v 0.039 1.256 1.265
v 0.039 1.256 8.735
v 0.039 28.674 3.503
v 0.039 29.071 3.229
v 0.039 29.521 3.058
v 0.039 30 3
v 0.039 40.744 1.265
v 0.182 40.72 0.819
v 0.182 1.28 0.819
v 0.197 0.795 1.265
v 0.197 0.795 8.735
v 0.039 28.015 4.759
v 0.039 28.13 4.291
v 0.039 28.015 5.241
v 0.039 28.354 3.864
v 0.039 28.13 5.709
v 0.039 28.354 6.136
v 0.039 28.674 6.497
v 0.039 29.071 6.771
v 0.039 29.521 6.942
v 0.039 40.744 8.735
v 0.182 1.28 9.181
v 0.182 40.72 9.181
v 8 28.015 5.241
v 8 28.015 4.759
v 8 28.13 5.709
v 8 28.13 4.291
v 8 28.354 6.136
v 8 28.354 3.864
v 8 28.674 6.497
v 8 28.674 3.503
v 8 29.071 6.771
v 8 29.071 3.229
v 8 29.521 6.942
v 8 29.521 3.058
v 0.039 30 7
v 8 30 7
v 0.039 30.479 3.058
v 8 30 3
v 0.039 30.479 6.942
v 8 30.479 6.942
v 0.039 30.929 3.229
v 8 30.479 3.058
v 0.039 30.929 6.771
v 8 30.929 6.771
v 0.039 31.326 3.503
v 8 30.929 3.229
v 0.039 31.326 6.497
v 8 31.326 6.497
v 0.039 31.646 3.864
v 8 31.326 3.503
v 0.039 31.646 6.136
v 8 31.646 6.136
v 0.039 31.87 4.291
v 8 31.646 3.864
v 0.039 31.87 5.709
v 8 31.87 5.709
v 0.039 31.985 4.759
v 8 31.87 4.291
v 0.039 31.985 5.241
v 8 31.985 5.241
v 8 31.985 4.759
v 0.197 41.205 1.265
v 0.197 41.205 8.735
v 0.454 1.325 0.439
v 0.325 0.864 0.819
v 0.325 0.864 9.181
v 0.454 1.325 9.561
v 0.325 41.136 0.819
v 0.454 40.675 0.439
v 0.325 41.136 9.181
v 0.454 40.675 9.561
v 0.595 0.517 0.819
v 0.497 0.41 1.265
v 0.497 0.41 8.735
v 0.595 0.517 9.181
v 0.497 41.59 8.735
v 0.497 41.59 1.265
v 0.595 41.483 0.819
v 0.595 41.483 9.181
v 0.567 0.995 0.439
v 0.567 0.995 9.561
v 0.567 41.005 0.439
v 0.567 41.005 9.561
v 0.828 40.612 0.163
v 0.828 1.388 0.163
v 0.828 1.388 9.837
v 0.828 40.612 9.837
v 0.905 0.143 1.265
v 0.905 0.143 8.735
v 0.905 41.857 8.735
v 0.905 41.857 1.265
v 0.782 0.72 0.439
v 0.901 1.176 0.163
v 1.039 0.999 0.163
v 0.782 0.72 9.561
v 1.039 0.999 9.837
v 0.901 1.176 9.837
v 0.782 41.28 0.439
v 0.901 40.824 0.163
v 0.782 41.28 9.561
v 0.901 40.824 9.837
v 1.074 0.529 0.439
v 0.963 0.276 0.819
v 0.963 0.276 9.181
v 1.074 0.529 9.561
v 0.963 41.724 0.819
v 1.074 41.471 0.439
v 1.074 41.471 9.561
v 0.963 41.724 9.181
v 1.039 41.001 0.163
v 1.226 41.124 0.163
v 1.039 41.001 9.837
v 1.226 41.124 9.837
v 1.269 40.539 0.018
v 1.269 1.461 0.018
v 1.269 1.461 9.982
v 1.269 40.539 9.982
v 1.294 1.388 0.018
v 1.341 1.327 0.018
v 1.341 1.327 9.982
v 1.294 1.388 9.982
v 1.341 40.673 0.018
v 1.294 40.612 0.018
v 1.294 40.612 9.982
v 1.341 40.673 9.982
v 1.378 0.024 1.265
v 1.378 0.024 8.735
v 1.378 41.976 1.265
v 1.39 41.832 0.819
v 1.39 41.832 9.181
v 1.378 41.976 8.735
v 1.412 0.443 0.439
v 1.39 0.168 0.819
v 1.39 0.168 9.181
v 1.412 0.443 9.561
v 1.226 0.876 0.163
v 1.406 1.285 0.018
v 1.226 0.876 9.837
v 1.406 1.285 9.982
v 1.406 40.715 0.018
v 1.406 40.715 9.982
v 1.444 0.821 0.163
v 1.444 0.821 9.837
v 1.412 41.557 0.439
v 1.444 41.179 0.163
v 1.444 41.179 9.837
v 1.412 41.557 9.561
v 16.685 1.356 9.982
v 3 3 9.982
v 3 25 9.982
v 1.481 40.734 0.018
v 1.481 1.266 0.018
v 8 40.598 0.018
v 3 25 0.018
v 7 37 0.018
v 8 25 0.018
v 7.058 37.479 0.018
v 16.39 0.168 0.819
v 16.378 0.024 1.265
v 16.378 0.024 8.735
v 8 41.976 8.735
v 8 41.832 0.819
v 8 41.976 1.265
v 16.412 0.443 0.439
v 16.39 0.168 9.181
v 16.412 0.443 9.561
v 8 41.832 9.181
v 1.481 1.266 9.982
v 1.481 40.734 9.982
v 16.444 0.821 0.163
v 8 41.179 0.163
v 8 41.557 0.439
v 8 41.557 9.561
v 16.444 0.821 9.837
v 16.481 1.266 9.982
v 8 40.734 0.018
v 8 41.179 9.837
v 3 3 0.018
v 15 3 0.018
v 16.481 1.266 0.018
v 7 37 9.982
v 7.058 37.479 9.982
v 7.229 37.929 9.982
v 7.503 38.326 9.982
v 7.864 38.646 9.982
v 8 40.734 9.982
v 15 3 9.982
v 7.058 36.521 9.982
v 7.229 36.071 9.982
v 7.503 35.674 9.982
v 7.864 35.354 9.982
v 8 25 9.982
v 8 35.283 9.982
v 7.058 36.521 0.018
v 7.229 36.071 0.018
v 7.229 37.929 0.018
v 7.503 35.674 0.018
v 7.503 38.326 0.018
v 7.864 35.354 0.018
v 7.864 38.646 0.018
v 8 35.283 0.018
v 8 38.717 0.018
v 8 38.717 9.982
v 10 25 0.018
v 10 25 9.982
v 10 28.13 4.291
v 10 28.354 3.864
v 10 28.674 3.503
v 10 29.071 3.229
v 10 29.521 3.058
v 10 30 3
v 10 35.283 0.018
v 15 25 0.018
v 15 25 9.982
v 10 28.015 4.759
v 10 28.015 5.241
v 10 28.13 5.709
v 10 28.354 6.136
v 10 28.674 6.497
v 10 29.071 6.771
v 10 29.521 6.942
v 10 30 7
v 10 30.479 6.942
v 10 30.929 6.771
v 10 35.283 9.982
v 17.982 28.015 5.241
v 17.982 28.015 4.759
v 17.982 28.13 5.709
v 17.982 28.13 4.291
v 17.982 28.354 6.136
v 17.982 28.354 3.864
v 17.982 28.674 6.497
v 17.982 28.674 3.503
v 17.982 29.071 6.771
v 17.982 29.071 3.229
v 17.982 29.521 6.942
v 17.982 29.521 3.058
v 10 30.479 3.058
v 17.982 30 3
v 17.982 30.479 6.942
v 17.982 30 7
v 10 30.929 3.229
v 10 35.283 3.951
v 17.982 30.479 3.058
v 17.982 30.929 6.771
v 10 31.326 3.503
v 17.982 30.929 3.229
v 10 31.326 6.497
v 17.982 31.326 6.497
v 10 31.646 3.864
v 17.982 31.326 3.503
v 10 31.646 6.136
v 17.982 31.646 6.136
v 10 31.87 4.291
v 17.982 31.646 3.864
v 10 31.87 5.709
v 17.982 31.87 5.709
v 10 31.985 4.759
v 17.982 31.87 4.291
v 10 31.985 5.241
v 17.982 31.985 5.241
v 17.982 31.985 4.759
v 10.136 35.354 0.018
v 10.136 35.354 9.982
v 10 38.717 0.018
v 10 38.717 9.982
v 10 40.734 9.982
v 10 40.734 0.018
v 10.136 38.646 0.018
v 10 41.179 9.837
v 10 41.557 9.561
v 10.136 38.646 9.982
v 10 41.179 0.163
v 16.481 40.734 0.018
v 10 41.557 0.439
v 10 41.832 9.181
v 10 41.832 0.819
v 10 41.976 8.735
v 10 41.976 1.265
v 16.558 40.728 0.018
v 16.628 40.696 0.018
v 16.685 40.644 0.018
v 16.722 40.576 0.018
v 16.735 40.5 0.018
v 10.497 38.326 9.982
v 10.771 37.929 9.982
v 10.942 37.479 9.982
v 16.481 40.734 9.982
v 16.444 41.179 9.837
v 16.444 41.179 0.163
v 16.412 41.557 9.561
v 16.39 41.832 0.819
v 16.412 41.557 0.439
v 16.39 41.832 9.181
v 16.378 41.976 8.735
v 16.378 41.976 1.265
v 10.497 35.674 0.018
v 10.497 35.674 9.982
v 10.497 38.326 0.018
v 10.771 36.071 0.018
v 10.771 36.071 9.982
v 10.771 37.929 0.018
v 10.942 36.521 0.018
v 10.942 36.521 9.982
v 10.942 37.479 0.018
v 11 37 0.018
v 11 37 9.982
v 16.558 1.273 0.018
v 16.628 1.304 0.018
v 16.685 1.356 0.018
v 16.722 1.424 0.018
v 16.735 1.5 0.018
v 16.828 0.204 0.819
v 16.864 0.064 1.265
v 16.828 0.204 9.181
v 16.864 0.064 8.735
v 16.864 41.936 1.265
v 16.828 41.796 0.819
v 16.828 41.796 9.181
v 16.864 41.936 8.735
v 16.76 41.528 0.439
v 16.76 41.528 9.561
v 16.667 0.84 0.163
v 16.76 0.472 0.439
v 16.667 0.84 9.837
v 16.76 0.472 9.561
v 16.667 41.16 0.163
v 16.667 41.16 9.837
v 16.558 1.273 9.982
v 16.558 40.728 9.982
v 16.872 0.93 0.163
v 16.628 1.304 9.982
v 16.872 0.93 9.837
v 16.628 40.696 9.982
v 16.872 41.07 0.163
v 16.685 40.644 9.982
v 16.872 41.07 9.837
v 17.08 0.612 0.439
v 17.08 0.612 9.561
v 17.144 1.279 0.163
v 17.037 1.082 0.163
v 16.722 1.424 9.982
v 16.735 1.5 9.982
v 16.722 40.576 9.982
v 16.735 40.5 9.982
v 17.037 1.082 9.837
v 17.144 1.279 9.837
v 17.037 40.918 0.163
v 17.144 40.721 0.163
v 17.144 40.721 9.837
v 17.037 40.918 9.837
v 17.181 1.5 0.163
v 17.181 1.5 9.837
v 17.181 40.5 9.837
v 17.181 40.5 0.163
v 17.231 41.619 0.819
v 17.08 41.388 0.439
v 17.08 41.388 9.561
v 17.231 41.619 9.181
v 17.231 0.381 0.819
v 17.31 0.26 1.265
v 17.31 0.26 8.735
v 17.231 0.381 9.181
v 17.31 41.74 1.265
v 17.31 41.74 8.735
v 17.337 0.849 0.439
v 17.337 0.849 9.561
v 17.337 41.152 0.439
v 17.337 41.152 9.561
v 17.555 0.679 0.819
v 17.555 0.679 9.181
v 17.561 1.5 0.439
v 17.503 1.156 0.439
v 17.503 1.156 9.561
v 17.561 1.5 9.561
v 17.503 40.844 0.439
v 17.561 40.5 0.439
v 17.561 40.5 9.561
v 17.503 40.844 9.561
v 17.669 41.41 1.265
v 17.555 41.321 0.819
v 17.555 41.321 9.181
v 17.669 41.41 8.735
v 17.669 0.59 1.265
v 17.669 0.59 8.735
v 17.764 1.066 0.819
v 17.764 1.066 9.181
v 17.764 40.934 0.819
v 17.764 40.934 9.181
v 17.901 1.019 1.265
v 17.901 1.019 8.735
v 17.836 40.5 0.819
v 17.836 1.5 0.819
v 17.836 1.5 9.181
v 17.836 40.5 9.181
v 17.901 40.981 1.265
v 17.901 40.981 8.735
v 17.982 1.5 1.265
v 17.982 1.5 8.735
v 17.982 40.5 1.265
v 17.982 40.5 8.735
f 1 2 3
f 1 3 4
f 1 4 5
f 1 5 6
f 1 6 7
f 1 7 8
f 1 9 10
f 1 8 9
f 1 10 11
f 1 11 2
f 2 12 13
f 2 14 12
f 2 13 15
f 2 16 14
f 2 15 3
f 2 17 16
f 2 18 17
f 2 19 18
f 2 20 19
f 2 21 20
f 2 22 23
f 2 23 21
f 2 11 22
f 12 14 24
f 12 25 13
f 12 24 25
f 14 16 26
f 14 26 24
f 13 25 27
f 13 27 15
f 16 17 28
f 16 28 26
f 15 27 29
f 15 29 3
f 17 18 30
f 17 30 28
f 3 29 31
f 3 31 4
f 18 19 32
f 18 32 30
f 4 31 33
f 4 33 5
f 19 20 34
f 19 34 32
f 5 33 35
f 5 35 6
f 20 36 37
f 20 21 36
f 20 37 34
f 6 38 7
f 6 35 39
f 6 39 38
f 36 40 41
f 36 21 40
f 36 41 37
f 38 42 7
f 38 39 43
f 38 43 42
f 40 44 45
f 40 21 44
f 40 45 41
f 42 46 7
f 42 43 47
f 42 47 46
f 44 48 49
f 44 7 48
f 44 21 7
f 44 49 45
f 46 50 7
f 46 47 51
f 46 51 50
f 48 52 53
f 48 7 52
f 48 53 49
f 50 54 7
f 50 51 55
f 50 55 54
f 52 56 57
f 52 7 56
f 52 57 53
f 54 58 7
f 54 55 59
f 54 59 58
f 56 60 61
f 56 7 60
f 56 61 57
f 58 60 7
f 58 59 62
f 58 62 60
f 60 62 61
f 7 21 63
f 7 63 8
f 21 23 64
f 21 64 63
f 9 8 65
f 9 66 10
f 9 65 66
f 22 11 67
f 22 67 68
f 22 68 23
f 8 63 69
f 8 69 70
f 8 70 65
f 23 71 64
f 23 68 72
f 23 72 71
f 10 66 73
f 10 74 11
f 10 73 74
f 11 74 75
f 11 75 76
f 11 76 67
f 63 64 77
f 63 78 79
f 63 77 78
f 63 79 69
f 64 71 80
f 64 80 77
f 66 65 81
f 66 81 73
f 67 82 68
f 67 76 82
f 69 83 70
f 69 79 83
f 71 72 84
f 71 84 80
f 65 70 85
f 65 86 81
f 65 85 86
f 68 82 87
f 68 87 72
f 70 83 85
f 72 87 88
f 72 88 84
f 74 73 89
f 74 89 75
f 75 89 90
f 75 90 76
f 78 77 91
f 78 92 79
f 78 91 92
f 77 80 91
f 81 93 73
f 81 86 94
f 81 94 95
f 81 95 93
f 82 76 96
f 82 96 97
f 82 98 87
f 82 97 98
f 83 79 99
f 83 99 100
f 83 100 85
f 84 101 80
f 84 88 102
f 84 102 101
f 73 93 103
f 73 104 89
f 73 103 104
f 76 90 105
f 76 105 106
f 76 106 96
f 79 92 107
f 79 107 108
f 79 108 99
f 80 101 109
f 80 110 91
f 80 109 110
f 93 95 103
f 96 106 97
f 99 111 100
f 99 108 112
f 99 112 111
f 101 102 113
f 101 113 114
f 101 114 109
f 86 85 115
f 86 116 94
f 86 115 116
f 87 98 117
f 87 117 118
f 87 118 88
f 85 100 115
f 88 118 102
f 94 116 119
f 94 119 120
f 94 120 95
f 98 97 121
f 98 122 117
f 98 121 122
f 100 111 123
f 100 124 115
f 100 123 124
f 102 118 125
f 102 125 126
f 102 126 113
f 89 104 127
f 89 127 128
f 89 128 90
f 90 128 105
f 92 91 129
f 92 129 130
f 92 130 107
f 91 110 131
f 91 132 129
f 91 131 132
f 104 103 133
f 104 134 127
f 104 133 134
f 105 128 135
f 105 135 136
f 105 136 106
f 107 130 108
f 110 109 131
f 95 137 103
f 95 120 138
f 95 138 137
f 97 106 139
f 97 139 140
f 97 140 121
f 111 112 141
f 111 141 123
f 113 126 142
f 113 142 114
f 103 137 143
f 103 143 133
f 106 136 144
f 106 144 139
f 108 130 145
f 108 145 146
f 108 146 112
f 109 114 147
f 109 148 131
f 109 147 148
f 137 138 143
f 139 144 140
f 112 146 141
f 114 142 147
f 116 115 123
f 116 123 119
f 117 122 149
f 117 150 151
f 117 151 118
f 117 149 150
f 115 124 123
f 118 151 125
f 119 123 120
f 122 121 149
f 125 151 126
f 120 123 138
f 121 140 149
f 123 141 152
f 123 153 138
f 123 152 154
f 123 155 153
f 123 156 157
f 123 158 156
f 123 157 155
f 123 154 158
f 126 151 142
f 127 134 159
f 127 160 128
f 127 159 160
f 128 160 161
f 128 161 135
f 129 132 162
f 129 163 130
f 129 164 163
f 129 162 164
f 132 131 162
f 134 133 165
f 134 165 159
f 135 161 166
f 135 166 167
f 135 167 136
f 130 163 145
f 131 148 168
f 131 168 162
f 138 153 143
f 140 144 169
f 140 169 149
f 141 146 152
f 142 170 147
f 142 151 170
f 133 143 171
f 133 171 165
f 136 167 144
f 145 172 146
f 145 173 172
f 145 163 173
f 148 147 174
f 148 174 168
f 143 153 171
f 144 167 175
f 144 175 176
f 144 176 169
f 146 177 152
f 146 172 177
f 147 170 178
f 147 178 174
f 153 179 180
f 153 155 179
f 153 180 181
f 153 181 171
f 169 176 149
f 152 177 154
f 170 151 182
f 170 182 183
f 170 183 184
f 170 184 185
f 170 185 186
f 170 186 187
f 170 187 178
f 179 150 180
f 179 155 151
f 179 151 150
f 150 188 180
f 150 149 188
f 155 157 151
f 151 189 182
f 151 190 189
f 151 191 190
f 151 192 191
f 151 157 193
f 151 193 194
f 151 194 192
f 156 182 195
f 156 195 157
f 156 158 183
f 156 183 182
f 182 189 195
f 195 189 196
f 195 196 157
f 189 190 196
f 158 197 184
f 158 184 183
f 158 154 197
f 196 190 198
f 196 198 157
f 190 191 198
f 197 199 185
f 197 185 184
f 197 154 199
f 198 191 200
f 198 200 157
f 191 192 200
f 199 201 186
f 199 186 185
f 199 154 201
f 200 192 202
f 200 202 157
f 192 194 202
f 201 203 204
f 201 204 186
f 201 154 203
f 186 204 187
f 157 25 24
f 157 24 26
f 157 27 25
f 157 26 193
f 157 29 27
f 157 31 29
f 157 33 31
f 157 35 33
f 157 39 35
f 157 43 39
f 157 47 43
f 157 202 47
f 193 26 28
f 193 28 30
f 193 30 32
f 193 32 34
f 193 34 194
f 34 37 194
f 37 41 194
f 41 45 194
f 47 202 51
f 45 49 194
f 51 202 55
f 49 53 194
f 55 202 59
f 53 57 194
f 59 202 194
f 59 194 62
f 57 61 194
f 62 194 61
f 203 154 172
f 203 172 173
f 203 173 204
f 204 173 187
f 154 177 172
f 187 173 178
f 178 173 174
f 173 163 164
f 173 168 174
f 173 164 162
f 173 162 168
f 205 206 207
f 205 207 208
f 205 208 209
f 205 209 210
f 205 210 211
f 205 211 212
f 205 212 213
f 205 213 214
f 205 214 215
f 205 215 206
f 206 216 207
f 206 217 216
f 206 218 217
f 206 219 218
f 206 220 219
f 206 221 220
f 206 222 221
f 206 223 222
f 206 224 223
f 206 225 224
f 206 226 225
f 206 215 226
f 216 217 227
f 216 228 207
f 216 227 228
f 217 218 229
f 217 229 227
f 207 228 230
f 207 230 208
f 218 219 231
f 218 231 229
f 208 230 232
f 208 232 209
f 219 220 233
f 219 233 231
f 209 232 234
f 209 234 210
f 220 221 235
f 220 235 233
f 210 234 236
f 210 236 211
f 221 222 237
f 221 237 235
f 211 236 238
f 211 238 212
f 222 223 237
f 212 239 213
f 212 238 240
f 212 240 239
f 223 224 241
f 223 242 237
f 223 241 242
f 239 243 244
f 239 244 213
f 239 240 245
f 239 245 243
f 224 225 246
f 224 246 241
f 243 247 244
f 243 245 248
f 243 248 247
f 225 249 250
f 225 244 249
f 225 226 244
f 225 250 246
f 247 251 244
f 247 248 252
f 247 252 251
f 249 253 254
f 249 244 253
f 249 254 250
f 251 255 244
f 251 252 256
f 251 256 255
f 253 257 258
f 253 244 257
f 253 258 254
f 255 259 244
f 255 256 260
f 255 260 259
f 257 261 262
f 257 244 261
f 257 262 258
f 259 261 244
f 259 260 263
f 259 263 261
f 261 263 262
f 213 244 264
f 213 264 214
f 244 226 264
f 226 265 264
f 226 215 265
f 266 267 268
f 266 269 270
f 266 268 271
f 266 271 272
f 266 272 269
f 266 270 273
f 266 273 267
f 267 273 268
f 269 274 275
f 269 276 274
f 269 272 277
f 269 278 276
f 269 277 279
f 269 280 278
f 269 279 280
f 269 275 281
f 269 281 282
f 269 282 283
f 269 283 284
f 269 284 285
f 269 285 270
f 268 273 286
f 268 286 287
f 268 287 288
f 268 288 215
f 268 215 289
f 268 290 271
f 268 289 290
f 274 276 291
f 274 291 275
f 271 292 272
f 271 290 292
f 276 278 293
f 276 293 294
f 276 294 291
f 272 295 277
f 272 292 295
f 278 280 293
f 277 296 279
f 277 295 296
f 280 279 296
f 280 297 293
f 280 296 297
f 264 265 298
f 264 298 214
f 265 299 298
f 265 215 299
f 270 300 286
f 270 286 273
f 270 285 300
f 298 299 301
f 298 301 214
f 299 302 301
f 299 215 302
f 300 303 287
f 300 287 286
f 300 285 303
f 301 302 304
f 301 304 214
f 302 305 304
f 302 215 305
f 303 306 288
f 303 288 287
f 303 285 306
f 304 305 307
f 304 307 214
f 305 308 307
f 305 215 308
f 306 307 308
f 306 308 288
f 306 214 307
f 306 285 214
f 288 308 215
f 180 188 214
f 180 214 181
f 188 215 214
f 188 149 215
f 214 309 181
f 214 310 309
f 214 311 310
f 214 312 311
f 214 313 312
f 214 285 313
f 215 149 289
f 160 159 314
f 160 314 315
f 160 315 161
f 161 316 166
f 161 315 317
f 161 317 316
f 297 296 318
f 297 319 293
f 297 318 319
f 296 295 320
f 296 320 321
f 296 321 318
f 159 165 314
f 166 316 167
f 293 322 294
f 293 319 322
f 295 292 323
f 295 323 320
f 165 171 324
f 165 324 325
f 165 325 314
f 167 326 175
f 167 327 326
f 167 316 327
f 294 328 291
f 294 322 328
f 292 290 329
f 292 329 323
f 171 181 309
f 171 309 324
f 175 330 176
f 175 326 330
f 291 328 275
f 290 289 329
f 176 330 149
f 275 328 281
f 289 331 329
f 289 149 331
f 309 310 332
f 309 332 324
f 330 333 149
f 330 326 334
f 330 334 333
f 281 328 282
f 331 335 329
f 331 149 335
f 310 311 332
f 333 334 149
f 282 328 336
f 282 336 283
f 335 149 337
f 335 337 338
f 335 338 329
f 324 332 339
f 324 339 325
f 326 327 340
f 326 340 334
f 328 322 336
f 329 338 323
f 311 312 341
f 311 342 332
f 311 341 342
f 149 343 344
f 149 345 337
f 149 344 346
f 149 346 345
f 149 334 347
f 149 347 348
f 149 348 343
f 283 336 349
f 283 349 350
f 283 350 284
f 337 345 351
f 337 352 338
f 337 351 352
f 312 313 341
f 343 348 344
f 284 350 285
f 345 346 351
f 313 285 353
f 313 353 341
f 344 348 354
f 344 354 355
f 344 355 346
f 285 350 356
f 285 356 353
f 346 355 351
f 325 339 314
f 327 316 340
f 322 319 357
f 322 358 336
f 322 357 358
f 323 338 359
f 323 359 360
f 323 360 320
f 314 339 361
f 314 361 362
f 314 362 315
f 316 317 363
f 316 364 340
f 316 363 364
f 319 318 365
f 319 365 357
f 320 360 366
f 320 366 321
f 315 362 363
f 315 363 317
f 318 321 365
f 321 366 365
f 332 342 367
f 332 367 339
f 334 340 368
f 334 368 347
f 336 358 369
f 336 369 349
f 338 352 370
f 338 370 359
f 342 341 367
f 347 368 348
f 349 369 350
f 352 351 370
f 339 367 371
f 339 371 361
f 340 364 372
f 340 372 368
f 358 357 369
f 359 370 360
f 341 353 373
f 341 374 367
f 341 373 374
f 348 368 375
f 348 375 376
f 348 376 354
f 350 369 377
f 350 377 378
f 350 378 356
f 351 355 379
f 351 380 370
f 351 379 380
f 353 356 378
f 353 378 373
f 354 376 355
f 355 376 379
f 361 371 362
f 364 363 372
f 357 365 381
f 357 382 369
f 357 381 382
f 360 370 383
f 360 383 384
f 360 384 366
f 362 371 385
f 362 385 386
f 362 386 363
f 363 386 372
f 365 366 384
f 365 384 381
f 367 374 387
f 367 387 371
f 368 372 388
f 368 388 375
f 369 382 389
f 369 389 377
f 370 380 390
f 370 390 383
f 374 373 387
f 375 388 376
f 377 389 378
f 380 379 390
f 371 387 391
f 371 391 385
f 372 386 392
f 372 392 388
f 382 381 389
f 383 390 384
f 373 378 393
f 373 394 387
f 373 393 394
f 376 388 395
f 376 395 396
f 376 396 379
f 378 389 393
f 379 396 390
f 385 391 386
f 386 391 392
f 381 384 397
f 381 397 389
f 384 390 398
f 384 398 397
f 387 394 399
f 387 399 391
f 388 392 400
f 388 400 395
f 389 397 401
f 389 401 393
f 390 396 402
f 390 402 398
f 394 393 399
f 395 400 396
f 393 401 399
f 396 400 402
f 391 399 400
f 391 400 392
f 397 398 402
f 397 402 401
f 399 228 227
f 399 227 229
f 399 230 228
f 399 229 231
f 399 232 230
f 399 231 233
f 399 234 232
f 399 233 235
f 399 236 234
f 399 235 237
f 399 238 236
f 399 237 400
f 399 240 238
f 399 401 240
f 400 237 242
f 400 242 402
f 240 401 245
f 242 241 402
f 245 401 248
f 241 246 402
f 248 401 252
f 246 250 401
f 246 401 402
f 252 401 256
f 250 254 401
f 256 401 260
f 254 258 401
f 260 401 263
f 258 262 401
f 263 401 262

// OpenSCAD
wall=3;
screw=4;
width=12;
height=22;
depth=10;
cable=4;
radius=1.5;
bissl=1/100;
$fa=1/1;
$fs=1/2;
module single() {
  difference() {
    //cube([width+2*wall,height+4*wall+cable+screw,depth]);
    cuber([width+2*wall,height+4*wall+cable+screw,depth],r=radius);
    translate([wall,wall,-bissl])cube([width,height,depth+2*bissl]);
    //translate([wall+width/2,2*wall+height+cable/2,-bissl])cylinder(h=depth+2*bissl,d=cable);
    translate([wall+width/2,2*wall+height+cable+wall+screw/2,-bissl])cylinder(h=depth+2*bissl,d=cable);
    //translate([-bissl,2*wall+height+cable+wall+screw/2,depth/2])rotate([0,90,0])cylinder(h=width+2*wall+2*bissl,d=cable);
    translate([-bissl,2*wall+height+cable/2,depth/2])rotate([0,90,0])cylinder(h=width+2*wall+2*bissl,d=cable);
    translate([width/2+wall-cable/4,height+wall-bissl,-bissl])cube([cable/2,3*wall+cable+screw+2*bissl,depth+2*bissl]);
  }
}
single();
module cuber(v,r) {
  minkowski() {
    sphere (r=r);
    translate([r,r,r])cube([v[0]-2*r,v[1]-2*r,v[2]-2*r]);
  }
}
